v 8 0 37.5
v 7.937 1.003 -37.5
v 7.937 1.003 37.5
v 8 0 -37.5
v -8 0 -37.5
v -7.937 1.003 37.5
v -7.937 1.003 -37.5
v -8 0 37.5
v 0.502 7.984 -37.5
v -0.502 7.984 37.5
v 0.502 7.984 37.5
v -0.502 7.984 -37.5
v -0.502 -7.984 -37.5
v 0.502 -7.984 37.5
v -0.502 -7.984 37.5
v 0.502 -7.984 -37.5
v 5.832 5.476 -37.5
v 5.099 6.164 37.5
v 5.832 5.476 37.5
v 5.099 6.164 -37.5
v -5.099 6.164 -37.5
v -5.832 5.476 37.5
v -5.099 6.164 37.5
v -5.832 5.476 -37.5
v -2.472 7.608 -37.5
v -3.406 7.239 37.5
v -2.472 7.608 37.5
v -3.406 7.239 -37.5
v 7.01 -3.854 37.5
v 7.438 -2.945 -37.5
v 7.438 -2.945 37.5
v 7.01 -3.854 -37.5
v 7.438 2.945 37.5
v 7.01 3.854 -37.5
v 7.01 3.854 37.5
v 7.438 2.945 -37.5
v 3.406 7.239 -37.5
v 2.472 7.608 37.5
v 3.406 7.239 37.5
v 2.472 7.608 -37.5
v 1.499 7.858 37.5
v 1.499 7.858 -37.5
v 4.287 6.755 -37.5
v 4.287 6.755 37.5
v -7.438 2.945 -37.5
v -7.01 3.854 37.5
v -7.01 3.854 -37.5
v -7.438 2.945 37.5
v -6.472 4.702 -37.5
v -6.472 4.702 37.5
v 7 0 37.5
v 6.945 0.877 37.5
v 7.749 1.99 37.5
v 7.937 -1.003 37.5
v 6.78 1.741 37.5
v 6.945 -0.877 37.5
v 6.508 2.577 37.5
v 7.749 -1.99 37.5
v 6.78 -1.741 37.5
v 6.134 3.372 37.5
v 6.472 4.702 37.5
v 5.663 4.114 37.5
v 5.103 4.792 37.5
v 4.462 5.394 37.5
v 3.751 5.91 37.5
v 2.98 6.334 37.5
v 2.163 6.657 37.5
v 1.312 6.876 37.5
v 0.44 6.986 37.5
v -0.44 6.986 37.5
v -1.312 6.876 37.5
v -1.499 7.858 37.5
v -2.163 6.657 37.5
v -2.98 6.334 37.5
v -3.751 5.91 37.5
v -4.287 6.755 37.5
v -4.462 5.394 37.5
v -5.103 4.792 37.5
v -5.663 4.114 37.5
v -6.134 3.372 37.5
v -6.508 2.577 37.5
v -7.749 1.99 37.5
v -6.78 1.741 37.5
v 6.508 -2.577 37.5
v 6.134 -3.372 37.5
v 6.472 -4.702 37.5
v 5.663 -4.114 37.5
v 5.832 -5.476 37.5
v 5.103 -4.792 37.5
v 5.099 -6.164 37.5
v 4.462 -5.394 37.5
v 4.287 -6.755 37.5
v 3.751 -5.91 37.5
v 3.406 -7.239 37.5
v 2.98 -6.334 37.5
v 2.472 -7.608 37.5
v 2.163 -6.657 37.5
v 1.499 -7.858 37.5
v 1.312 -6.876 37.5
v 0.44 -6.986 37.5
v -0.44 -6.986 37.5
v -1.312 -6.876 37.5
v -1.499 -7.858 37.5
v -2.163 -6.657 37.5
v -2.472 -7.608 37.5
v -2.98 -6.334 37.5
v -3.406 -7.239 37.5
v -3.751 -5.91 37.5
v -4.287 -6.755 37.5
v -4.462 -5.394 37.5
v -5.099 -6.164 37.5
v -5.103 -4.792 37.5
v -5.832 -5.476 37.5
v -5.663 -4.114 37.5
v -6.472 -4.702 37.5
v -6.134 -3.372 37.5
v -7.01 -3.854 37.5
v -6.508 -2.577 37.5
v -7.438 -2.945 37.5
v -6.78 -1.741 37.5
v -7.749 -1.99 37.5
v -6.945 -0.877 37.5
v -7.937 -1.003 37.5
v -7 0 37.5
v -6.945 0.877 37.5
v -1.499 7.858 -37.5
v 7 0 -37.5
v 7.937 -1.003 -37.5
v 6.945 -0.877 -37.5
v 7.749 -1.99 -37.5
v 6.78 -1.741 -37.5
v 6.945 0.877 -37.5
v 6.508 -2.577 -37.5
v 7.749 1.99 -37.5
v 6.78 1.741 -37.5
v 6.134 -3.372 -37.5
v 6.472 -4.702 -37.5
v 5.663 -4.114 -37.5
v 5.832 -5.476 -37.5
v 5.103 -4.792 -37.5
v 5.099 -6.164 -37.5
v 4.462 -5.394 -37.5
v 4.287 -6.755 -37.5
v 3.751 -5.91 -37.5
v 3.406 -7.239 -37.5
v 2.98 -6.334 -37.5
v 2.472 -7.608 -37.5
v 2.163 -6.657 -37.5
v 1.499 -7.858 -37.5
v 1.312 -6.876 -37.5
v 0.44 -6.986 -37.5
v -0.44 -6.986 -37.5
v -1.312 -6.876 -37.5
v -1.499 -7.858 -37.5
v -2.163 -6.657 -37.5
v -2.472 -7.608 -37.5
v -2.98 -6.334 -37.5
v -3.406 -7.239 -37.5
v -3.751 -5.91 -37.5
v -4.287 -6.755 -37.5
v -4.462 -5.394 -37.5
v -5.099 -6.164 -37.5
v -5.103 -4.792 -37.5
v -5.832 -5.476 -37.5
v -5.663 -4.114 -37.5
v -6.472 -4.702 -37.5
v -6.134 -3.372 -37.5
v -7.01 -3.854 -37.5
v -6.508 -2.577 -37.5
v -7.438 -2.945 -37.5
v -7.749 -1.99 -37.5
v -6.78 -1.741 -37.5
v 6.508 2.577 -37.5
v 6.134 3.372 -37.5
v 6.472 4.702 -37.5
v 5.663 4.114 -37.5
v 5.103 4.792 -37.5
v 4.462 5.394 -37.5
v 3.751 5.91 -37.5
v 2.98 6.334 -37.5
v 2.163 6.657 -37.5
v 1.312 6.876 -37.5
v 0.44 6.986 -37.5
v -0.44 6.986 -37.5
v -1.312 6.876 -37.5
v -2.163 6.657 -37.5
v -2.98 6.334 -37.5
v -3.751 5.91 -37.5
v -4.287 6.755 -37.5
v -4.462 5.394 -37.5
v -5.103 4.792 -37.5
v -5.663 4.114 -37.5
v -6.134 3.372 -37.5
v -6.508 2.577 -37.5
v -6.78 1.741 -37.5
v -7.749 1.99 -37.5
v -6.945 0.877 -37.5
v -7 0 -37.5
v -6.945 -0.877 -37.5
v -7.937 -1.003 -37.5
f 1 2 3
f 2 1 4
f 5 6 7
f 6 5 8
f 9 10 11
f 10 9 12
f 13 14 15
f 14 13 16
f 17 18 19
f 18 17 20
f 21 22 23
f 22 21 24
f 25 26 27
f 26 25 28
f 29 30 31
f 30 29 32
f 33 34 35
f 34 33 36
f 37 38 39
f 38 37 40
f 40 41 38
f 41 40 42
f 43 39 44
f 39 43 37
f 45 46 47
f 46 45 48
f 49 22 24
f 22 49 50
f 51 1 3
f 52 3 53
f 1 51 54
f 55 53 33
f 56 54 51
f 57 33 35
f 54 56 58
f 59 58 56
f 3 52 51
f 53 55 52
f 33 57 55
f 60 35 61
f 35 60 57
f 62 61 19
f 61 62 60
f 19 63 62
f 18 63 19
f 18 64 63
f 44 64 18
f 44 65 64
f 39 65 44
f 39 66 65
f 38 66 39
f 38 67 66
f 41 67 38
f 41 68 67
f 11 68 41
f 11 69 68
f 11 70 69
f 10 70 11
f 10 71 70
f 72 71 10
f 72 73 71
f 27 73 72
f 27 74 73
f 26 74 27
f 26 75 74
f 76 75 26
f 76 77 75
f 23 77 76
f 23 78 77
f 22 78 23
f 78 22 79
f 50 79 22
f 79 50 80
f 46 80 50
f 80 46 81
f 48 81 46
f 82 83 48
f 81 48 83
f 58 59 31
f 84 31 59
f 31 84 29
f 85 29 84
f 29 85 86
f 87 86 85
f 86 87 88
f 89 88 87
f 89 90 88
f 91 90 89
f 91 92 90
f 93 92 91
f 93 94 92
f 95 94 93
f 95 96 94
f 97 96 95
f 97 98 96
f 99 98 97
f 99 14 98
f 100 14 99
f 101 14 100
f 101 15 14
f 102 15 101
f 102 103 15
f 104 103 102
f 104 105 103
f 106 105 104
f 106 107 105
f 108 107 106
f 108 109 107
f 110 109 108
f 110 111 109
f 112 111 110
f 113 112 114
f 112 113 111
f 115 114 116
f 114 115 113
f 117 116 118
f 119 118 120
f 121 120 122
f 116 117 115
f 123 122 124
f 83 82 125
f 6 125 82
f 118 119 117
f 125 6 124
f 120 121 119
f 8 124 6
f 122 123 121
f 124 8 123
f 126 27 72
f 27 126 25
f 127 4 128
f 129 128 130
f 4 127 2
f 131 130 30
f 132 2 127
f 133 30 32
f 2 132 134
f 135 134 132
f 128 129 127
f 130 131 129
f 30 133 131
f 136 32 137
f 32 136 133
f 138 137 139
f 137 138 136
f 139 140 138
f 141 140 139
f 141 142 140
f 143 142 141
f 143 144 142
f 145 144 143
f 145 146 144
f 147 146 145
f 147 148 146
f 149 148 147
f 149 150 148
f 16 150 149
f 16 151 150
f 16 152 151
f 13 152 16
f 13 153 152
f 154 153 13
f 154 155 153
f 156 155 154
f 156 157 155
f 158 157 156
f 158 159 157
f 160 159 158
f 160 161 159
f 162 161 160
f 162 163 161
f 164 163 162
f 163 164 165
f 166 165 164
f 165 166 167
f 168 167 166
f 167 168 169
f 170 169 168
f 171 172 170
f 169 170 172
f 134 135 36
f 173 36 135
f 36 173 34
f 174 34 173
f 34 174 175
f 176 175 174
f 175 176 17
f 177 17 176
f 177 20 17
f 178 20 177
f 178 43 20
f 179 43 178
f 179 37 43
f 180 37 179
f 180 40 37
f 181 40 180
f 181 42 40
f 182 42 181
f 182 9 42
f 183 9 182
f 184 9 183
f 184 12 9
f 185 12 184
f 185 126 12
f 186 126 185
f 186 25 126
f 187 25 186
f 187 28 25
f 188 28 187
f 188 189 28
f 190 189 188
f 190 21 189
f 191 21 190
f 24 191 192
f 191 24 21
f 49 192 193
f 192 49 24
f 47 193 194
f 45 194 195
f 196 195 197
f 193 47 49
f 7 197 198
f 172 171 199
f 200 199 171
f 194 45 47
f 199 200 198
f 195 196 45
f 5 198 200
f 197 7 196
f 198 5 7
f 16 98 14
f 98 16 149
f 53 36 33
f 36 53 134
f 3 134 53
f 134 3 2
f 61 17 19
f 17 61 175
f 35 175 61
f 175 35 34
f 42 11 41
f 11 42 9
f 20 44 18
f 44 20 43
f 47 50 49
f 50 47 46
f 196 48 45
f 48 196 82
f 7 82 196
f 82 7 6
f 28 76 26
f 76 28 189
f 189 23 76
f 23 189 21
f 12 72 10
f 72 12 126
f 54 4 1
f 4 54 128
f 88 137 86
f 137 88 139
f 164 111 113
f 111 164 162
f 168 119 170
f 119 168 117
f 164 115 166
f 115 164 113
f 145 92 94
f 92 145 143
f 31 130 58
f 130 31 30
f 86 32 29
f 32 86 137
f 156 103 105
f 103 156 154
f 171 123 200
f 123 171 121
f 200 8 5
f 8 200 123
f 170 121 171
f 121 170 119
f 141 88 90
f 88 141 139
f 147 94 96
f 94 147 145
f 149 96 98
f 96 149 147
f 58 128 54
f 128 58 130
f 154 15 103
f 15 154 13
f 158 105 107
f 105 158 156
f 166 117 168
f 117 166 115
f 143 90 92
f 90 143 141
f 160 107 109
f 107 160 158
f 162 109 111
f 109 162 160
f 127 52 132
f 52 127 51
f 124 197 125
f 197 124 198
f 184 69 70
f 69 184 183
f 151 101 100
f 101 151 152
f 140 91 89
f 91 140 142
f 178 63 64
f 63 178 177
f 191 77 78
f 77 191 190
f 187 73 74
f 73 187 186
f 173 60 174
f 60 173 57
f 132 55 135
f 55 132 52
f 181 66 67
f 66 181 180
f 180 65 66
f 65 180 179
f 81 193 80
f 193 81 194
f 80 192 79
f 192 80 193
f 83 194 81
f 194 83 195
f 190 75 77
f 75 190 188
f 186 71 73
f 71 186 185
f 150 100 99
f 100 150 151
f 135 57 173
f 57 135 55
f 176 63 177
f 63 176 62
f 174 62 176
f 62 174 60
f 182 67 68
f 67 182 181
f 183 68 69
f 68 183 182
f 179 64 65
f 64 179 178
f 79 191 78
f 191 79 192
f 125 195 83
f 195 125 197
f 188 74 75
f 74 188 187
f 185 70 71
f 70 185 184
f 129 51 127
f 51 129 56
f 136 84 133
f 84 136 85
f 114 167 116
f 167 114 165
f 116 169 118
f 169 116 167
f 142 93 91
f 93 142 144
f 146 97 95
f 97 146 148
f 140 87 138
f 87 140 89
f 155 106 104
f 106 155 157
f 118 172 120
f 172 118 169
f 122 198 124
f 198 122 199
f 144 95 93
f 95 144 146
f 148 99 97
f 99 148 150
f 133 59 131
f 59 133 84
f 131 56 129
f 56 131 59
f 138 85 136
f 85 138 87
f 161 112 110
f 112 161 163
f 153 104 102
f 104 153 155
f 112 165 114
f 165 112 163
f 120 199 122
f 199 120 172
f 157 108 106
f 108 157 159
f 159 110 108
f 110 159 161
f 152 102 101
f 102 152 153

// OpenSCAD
$fn = 50;


difference() {
	union() {
		translate(v = [0, 0, -37.5000000000]) {
			cylinder(h = 75, r = 8.0000000000);
		}
	}
	union() {
		translate(v = [0, 0, -100.0000000000]) {
			cylinder(h = 200, r = 7);
		}
	}
}
